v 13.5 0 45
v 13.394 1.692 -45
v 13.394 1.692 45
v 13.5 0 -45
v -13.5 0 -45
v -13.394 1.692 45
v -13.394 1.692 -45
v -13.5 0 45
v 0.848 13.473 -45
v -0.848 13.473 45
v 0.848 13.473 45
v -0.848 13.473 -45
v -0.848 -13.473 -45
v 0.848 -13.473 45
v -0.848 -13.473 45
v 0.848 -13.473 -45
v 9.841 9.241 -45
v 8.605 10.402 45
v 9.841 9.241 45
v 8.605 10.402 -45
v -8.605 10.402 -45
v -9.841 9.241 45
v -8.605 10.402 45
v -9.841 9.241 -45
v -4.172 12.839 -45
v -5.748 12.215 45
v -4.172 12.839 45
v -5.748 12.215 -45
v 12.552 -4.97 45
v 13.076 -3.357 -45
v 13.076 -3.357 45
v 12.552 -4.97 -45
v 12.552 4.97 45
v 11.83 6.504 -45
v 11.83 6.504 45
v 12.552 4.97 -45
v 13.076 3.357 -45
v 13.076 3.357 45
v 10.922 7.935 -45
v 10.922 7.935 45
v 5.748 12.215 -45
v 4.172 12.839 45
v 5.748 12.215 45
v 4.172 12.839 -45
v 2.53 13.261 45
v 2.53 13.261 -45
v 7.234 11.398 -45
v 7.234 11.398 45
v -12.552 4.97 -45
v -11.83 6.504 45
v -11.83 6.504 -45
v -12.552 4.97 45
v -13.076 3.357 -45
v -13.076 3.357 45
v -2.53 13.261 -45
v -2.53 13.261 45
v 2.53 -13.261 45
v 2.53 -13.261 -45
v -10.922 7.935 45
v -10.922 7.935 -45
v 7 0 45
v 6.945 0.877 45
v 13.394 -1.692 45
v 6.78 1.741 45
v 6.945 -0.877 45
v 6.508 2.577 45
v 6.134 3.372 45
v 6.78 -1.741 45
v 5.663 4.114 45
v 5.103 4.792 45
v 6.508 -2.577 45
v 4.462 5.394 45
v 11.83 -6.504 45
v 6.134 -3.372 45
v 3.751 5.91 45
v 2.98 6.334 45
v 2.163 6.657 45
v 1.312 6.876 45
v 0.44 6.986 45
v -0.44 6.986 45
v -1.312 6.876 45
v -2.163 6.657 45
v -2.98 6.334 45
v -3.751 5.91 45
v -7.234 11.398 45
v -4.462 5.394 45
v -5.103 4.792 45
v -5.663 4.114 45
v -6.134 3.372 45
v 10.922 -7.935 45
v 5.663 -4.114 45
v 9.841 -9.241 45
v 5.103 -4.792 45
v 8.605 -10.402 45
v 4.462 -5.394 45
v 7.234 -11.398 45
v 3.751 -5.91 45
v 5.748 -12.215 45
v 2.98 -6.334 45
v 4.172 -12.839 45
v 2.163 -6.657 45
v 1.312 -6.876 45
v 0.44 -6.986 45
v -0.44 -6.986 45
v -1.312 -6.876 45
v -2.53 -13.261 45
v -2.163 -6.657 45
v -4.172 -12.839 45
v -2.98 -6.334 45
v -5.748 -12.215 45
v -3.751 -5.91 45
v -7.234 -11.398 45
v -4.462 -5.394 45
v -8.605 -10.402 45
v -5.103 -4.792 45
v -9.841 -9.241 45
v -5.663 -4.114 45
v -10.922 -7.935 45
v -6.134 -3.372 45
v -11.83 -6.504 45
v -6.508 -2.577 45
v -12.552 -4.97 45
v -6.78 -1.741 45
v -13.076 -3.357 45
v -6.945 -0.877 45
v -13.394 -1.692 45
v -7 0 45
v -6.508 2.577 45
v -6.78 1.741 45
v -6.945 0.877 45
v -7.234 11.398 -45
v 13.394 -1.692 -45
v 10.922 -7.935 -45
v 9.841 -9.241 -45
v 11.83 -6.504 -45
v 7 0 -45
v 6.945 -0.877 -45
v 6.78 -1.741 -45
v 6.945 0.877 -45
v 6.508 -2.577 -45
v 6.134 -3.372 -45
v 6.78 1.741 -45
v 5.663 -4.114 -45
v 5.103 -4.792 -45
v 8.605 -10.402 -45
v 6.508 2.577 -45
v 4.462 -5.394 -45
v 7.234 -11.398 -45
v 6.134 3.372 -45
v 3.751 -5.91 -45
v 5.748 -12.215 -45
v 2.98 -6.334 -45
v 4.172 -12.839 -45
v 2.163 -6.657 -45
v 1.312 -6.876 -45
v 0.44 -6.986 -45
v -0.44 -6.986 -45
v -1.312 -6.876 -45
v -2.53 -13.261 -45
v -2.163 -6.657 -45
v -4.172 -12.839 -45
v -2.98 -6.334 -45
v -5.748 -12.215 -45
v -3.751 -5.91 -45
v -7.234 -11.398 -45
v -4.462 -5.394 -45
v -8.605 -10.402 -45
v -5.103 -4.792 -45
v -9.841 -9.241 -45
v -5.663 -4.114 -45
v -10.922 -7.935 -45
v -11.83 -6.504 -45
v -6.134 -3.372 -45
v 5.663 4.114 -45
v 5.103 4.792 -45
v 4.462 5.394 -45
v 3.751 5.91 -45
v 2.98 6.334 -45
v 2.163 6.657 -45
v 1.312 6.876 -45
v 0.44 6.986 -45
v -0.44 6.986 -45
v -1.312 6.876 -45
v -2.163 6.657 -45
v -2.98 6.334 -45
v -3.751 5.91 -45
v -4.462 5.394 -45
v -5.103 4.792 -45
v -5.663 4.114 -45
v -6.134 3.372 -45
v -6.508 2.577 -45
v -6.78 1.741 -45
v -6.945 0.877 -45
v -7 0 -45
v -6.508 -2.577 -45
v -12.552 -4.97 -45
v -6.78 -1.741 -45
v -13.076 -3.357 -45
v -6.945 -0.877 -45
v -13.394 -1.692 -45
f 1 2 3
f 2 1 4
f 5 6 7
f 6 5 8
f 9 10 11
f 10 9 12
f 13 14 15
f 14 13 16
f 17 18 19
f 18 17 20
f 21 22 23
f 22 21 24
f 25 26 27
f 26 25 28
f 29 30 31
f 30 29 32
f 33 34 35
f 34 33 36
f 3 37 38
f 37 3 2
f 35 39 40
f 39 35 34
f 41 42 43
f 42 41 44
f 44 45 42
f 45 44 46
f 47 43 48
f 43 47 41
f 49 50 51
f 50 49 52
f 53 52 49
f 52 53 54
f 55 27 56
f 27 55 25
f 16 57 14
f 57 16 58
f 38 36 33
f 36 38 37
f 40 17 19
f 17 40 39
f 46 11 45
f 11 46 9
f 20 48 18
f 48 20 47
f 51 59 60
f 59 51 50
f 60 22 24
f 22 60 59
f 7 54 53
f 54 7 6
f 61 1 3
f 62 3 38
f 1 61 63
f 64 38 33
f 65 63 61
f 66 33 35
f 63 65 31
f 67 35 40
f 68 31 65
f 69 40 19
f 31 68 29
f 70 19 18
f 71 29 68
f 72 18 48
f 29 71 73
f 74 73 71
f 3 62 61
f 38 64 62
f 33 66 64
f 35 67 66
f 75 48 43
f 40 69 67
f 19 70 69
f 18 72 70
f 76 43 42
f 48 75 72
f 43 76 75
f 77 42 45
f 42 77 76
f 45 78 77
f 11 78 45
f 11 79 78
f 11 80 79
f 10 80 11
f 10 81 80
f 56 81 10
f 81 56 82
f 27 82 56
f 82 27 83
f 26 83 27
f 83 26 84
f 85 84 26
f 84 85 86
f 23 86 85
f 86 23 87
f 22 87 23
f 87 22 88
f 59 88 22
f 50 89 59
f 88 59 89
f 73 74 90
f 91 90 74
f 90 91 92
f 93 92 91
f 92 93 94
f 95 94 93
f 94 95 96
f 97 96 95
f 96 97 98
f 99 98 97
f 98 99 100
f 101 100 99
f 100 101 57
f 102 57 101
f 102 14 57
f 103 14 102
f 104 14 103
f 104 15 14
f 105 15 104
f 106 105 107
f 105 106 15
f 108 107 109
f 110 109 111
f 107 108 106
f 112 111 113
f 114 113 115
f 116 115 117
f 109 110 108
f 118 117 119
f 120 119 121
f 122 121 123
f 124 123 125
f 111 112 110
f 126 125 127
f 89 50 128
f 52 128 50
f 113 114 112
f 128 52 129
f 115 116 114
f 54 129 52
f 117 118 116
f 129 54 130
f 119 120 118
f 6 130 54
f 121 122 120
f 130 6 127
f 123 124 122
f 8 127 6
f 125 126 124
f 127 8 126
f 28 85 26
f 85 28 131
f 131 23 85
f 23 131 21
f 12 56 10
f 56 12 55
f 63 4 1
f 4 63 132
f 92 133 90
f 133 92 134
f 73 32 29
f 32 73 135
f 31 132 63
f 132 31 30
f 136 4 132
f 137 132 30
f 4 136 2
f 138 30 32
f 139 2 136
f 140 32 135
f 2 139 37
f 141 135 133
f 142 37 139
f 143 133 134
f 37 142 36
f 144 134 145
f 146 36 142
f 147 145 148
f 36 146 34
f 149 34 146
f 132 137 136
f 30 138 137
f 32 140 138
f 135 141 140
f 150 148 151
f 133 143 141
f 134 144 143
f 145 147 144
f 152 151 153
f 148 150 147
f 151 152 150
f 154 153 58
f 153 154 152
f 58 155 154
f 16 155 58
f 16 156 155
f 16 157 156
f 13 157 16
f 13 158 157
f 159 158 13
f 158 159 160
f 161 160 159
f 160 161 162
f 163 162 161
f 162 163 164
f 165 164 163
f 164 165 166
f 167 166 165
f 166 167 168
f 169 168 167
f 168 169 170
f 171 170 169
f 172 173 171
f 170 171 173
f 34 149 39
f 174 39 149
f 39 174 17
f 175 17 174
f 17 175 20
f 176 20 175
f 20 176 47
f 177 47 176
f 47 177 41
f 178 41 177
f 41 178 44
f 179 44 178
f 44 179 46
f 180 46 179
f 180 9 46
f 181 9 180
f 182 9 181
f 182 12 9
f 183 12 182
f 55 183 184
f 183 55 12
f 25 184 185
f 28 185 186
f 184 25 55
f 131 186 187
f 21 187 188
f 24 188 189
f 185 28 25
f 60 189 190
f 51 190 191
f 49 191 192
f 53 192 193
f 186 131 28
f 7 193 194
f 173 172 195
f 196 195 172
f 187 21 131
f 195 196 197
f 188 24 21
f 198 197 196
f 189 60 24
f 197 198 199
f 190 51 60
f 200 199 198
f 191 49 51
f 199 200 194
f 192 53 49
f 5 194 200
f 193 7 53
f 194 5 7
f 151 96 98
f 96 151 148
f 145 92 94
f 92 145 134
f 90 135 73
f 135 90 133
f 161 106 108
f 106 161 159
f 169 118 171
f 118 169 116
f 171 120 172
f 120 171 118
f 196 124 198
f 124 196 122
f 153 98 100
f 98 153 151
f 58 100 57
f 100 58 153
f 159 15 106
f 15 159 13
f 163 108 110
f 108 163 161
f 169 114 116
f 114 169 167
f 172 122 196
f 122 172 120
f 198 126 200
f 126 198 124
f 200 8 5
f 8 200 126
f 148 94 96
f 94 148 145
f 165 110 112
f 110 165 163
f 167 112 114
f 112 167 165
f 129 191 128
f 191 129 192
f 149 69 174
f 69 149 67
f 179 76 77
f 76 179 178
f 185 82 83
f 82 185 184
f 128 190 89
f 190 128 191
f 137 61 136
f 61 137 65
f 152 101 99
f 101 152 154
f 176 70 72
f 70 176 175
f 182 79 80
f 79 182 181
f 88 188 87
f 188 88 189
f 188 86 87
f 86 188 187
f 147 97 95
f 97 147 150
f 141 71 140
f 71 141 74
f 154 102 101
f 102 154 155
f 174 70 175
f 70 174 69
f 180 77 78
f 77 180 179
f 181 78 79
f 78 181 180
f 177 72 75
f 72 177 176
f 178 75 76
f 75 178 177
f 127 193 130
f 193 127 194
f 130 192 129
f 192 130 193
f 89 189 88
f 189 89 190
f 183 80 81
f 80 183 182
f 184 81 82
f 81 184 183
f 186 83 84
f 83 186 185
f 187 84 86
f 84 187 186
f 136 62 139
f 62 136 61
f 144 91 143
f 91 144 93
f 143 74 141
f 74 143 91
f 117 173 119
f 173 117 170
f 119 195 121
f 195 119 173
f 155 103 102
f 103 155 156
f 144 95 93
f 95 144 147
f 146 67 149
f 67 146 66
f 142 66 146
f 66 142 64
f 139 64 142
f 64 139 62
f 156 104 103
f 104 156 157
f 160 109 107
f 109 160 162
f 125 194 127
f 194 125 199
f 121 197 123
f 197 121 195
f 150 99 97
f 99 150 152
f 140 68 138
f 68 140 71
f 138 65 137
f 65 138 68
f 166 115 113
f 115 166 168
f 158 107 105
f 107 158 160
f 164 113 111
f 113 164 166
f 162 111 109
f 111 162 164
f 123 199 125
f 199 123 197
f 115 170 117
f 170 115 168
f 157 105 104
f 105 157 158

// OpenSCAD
$fn = 50;


difference() {
	union() {
		translate(v = [0, 0, -45.0000000000]) {
			cylinder(h = 90, r = 13.5000000000);
		}
	}
	union() {
		translate(v = [0, 0, -100.0000000000]) {
			cylinder(h = 200, r = 7);
		}
	}
}
